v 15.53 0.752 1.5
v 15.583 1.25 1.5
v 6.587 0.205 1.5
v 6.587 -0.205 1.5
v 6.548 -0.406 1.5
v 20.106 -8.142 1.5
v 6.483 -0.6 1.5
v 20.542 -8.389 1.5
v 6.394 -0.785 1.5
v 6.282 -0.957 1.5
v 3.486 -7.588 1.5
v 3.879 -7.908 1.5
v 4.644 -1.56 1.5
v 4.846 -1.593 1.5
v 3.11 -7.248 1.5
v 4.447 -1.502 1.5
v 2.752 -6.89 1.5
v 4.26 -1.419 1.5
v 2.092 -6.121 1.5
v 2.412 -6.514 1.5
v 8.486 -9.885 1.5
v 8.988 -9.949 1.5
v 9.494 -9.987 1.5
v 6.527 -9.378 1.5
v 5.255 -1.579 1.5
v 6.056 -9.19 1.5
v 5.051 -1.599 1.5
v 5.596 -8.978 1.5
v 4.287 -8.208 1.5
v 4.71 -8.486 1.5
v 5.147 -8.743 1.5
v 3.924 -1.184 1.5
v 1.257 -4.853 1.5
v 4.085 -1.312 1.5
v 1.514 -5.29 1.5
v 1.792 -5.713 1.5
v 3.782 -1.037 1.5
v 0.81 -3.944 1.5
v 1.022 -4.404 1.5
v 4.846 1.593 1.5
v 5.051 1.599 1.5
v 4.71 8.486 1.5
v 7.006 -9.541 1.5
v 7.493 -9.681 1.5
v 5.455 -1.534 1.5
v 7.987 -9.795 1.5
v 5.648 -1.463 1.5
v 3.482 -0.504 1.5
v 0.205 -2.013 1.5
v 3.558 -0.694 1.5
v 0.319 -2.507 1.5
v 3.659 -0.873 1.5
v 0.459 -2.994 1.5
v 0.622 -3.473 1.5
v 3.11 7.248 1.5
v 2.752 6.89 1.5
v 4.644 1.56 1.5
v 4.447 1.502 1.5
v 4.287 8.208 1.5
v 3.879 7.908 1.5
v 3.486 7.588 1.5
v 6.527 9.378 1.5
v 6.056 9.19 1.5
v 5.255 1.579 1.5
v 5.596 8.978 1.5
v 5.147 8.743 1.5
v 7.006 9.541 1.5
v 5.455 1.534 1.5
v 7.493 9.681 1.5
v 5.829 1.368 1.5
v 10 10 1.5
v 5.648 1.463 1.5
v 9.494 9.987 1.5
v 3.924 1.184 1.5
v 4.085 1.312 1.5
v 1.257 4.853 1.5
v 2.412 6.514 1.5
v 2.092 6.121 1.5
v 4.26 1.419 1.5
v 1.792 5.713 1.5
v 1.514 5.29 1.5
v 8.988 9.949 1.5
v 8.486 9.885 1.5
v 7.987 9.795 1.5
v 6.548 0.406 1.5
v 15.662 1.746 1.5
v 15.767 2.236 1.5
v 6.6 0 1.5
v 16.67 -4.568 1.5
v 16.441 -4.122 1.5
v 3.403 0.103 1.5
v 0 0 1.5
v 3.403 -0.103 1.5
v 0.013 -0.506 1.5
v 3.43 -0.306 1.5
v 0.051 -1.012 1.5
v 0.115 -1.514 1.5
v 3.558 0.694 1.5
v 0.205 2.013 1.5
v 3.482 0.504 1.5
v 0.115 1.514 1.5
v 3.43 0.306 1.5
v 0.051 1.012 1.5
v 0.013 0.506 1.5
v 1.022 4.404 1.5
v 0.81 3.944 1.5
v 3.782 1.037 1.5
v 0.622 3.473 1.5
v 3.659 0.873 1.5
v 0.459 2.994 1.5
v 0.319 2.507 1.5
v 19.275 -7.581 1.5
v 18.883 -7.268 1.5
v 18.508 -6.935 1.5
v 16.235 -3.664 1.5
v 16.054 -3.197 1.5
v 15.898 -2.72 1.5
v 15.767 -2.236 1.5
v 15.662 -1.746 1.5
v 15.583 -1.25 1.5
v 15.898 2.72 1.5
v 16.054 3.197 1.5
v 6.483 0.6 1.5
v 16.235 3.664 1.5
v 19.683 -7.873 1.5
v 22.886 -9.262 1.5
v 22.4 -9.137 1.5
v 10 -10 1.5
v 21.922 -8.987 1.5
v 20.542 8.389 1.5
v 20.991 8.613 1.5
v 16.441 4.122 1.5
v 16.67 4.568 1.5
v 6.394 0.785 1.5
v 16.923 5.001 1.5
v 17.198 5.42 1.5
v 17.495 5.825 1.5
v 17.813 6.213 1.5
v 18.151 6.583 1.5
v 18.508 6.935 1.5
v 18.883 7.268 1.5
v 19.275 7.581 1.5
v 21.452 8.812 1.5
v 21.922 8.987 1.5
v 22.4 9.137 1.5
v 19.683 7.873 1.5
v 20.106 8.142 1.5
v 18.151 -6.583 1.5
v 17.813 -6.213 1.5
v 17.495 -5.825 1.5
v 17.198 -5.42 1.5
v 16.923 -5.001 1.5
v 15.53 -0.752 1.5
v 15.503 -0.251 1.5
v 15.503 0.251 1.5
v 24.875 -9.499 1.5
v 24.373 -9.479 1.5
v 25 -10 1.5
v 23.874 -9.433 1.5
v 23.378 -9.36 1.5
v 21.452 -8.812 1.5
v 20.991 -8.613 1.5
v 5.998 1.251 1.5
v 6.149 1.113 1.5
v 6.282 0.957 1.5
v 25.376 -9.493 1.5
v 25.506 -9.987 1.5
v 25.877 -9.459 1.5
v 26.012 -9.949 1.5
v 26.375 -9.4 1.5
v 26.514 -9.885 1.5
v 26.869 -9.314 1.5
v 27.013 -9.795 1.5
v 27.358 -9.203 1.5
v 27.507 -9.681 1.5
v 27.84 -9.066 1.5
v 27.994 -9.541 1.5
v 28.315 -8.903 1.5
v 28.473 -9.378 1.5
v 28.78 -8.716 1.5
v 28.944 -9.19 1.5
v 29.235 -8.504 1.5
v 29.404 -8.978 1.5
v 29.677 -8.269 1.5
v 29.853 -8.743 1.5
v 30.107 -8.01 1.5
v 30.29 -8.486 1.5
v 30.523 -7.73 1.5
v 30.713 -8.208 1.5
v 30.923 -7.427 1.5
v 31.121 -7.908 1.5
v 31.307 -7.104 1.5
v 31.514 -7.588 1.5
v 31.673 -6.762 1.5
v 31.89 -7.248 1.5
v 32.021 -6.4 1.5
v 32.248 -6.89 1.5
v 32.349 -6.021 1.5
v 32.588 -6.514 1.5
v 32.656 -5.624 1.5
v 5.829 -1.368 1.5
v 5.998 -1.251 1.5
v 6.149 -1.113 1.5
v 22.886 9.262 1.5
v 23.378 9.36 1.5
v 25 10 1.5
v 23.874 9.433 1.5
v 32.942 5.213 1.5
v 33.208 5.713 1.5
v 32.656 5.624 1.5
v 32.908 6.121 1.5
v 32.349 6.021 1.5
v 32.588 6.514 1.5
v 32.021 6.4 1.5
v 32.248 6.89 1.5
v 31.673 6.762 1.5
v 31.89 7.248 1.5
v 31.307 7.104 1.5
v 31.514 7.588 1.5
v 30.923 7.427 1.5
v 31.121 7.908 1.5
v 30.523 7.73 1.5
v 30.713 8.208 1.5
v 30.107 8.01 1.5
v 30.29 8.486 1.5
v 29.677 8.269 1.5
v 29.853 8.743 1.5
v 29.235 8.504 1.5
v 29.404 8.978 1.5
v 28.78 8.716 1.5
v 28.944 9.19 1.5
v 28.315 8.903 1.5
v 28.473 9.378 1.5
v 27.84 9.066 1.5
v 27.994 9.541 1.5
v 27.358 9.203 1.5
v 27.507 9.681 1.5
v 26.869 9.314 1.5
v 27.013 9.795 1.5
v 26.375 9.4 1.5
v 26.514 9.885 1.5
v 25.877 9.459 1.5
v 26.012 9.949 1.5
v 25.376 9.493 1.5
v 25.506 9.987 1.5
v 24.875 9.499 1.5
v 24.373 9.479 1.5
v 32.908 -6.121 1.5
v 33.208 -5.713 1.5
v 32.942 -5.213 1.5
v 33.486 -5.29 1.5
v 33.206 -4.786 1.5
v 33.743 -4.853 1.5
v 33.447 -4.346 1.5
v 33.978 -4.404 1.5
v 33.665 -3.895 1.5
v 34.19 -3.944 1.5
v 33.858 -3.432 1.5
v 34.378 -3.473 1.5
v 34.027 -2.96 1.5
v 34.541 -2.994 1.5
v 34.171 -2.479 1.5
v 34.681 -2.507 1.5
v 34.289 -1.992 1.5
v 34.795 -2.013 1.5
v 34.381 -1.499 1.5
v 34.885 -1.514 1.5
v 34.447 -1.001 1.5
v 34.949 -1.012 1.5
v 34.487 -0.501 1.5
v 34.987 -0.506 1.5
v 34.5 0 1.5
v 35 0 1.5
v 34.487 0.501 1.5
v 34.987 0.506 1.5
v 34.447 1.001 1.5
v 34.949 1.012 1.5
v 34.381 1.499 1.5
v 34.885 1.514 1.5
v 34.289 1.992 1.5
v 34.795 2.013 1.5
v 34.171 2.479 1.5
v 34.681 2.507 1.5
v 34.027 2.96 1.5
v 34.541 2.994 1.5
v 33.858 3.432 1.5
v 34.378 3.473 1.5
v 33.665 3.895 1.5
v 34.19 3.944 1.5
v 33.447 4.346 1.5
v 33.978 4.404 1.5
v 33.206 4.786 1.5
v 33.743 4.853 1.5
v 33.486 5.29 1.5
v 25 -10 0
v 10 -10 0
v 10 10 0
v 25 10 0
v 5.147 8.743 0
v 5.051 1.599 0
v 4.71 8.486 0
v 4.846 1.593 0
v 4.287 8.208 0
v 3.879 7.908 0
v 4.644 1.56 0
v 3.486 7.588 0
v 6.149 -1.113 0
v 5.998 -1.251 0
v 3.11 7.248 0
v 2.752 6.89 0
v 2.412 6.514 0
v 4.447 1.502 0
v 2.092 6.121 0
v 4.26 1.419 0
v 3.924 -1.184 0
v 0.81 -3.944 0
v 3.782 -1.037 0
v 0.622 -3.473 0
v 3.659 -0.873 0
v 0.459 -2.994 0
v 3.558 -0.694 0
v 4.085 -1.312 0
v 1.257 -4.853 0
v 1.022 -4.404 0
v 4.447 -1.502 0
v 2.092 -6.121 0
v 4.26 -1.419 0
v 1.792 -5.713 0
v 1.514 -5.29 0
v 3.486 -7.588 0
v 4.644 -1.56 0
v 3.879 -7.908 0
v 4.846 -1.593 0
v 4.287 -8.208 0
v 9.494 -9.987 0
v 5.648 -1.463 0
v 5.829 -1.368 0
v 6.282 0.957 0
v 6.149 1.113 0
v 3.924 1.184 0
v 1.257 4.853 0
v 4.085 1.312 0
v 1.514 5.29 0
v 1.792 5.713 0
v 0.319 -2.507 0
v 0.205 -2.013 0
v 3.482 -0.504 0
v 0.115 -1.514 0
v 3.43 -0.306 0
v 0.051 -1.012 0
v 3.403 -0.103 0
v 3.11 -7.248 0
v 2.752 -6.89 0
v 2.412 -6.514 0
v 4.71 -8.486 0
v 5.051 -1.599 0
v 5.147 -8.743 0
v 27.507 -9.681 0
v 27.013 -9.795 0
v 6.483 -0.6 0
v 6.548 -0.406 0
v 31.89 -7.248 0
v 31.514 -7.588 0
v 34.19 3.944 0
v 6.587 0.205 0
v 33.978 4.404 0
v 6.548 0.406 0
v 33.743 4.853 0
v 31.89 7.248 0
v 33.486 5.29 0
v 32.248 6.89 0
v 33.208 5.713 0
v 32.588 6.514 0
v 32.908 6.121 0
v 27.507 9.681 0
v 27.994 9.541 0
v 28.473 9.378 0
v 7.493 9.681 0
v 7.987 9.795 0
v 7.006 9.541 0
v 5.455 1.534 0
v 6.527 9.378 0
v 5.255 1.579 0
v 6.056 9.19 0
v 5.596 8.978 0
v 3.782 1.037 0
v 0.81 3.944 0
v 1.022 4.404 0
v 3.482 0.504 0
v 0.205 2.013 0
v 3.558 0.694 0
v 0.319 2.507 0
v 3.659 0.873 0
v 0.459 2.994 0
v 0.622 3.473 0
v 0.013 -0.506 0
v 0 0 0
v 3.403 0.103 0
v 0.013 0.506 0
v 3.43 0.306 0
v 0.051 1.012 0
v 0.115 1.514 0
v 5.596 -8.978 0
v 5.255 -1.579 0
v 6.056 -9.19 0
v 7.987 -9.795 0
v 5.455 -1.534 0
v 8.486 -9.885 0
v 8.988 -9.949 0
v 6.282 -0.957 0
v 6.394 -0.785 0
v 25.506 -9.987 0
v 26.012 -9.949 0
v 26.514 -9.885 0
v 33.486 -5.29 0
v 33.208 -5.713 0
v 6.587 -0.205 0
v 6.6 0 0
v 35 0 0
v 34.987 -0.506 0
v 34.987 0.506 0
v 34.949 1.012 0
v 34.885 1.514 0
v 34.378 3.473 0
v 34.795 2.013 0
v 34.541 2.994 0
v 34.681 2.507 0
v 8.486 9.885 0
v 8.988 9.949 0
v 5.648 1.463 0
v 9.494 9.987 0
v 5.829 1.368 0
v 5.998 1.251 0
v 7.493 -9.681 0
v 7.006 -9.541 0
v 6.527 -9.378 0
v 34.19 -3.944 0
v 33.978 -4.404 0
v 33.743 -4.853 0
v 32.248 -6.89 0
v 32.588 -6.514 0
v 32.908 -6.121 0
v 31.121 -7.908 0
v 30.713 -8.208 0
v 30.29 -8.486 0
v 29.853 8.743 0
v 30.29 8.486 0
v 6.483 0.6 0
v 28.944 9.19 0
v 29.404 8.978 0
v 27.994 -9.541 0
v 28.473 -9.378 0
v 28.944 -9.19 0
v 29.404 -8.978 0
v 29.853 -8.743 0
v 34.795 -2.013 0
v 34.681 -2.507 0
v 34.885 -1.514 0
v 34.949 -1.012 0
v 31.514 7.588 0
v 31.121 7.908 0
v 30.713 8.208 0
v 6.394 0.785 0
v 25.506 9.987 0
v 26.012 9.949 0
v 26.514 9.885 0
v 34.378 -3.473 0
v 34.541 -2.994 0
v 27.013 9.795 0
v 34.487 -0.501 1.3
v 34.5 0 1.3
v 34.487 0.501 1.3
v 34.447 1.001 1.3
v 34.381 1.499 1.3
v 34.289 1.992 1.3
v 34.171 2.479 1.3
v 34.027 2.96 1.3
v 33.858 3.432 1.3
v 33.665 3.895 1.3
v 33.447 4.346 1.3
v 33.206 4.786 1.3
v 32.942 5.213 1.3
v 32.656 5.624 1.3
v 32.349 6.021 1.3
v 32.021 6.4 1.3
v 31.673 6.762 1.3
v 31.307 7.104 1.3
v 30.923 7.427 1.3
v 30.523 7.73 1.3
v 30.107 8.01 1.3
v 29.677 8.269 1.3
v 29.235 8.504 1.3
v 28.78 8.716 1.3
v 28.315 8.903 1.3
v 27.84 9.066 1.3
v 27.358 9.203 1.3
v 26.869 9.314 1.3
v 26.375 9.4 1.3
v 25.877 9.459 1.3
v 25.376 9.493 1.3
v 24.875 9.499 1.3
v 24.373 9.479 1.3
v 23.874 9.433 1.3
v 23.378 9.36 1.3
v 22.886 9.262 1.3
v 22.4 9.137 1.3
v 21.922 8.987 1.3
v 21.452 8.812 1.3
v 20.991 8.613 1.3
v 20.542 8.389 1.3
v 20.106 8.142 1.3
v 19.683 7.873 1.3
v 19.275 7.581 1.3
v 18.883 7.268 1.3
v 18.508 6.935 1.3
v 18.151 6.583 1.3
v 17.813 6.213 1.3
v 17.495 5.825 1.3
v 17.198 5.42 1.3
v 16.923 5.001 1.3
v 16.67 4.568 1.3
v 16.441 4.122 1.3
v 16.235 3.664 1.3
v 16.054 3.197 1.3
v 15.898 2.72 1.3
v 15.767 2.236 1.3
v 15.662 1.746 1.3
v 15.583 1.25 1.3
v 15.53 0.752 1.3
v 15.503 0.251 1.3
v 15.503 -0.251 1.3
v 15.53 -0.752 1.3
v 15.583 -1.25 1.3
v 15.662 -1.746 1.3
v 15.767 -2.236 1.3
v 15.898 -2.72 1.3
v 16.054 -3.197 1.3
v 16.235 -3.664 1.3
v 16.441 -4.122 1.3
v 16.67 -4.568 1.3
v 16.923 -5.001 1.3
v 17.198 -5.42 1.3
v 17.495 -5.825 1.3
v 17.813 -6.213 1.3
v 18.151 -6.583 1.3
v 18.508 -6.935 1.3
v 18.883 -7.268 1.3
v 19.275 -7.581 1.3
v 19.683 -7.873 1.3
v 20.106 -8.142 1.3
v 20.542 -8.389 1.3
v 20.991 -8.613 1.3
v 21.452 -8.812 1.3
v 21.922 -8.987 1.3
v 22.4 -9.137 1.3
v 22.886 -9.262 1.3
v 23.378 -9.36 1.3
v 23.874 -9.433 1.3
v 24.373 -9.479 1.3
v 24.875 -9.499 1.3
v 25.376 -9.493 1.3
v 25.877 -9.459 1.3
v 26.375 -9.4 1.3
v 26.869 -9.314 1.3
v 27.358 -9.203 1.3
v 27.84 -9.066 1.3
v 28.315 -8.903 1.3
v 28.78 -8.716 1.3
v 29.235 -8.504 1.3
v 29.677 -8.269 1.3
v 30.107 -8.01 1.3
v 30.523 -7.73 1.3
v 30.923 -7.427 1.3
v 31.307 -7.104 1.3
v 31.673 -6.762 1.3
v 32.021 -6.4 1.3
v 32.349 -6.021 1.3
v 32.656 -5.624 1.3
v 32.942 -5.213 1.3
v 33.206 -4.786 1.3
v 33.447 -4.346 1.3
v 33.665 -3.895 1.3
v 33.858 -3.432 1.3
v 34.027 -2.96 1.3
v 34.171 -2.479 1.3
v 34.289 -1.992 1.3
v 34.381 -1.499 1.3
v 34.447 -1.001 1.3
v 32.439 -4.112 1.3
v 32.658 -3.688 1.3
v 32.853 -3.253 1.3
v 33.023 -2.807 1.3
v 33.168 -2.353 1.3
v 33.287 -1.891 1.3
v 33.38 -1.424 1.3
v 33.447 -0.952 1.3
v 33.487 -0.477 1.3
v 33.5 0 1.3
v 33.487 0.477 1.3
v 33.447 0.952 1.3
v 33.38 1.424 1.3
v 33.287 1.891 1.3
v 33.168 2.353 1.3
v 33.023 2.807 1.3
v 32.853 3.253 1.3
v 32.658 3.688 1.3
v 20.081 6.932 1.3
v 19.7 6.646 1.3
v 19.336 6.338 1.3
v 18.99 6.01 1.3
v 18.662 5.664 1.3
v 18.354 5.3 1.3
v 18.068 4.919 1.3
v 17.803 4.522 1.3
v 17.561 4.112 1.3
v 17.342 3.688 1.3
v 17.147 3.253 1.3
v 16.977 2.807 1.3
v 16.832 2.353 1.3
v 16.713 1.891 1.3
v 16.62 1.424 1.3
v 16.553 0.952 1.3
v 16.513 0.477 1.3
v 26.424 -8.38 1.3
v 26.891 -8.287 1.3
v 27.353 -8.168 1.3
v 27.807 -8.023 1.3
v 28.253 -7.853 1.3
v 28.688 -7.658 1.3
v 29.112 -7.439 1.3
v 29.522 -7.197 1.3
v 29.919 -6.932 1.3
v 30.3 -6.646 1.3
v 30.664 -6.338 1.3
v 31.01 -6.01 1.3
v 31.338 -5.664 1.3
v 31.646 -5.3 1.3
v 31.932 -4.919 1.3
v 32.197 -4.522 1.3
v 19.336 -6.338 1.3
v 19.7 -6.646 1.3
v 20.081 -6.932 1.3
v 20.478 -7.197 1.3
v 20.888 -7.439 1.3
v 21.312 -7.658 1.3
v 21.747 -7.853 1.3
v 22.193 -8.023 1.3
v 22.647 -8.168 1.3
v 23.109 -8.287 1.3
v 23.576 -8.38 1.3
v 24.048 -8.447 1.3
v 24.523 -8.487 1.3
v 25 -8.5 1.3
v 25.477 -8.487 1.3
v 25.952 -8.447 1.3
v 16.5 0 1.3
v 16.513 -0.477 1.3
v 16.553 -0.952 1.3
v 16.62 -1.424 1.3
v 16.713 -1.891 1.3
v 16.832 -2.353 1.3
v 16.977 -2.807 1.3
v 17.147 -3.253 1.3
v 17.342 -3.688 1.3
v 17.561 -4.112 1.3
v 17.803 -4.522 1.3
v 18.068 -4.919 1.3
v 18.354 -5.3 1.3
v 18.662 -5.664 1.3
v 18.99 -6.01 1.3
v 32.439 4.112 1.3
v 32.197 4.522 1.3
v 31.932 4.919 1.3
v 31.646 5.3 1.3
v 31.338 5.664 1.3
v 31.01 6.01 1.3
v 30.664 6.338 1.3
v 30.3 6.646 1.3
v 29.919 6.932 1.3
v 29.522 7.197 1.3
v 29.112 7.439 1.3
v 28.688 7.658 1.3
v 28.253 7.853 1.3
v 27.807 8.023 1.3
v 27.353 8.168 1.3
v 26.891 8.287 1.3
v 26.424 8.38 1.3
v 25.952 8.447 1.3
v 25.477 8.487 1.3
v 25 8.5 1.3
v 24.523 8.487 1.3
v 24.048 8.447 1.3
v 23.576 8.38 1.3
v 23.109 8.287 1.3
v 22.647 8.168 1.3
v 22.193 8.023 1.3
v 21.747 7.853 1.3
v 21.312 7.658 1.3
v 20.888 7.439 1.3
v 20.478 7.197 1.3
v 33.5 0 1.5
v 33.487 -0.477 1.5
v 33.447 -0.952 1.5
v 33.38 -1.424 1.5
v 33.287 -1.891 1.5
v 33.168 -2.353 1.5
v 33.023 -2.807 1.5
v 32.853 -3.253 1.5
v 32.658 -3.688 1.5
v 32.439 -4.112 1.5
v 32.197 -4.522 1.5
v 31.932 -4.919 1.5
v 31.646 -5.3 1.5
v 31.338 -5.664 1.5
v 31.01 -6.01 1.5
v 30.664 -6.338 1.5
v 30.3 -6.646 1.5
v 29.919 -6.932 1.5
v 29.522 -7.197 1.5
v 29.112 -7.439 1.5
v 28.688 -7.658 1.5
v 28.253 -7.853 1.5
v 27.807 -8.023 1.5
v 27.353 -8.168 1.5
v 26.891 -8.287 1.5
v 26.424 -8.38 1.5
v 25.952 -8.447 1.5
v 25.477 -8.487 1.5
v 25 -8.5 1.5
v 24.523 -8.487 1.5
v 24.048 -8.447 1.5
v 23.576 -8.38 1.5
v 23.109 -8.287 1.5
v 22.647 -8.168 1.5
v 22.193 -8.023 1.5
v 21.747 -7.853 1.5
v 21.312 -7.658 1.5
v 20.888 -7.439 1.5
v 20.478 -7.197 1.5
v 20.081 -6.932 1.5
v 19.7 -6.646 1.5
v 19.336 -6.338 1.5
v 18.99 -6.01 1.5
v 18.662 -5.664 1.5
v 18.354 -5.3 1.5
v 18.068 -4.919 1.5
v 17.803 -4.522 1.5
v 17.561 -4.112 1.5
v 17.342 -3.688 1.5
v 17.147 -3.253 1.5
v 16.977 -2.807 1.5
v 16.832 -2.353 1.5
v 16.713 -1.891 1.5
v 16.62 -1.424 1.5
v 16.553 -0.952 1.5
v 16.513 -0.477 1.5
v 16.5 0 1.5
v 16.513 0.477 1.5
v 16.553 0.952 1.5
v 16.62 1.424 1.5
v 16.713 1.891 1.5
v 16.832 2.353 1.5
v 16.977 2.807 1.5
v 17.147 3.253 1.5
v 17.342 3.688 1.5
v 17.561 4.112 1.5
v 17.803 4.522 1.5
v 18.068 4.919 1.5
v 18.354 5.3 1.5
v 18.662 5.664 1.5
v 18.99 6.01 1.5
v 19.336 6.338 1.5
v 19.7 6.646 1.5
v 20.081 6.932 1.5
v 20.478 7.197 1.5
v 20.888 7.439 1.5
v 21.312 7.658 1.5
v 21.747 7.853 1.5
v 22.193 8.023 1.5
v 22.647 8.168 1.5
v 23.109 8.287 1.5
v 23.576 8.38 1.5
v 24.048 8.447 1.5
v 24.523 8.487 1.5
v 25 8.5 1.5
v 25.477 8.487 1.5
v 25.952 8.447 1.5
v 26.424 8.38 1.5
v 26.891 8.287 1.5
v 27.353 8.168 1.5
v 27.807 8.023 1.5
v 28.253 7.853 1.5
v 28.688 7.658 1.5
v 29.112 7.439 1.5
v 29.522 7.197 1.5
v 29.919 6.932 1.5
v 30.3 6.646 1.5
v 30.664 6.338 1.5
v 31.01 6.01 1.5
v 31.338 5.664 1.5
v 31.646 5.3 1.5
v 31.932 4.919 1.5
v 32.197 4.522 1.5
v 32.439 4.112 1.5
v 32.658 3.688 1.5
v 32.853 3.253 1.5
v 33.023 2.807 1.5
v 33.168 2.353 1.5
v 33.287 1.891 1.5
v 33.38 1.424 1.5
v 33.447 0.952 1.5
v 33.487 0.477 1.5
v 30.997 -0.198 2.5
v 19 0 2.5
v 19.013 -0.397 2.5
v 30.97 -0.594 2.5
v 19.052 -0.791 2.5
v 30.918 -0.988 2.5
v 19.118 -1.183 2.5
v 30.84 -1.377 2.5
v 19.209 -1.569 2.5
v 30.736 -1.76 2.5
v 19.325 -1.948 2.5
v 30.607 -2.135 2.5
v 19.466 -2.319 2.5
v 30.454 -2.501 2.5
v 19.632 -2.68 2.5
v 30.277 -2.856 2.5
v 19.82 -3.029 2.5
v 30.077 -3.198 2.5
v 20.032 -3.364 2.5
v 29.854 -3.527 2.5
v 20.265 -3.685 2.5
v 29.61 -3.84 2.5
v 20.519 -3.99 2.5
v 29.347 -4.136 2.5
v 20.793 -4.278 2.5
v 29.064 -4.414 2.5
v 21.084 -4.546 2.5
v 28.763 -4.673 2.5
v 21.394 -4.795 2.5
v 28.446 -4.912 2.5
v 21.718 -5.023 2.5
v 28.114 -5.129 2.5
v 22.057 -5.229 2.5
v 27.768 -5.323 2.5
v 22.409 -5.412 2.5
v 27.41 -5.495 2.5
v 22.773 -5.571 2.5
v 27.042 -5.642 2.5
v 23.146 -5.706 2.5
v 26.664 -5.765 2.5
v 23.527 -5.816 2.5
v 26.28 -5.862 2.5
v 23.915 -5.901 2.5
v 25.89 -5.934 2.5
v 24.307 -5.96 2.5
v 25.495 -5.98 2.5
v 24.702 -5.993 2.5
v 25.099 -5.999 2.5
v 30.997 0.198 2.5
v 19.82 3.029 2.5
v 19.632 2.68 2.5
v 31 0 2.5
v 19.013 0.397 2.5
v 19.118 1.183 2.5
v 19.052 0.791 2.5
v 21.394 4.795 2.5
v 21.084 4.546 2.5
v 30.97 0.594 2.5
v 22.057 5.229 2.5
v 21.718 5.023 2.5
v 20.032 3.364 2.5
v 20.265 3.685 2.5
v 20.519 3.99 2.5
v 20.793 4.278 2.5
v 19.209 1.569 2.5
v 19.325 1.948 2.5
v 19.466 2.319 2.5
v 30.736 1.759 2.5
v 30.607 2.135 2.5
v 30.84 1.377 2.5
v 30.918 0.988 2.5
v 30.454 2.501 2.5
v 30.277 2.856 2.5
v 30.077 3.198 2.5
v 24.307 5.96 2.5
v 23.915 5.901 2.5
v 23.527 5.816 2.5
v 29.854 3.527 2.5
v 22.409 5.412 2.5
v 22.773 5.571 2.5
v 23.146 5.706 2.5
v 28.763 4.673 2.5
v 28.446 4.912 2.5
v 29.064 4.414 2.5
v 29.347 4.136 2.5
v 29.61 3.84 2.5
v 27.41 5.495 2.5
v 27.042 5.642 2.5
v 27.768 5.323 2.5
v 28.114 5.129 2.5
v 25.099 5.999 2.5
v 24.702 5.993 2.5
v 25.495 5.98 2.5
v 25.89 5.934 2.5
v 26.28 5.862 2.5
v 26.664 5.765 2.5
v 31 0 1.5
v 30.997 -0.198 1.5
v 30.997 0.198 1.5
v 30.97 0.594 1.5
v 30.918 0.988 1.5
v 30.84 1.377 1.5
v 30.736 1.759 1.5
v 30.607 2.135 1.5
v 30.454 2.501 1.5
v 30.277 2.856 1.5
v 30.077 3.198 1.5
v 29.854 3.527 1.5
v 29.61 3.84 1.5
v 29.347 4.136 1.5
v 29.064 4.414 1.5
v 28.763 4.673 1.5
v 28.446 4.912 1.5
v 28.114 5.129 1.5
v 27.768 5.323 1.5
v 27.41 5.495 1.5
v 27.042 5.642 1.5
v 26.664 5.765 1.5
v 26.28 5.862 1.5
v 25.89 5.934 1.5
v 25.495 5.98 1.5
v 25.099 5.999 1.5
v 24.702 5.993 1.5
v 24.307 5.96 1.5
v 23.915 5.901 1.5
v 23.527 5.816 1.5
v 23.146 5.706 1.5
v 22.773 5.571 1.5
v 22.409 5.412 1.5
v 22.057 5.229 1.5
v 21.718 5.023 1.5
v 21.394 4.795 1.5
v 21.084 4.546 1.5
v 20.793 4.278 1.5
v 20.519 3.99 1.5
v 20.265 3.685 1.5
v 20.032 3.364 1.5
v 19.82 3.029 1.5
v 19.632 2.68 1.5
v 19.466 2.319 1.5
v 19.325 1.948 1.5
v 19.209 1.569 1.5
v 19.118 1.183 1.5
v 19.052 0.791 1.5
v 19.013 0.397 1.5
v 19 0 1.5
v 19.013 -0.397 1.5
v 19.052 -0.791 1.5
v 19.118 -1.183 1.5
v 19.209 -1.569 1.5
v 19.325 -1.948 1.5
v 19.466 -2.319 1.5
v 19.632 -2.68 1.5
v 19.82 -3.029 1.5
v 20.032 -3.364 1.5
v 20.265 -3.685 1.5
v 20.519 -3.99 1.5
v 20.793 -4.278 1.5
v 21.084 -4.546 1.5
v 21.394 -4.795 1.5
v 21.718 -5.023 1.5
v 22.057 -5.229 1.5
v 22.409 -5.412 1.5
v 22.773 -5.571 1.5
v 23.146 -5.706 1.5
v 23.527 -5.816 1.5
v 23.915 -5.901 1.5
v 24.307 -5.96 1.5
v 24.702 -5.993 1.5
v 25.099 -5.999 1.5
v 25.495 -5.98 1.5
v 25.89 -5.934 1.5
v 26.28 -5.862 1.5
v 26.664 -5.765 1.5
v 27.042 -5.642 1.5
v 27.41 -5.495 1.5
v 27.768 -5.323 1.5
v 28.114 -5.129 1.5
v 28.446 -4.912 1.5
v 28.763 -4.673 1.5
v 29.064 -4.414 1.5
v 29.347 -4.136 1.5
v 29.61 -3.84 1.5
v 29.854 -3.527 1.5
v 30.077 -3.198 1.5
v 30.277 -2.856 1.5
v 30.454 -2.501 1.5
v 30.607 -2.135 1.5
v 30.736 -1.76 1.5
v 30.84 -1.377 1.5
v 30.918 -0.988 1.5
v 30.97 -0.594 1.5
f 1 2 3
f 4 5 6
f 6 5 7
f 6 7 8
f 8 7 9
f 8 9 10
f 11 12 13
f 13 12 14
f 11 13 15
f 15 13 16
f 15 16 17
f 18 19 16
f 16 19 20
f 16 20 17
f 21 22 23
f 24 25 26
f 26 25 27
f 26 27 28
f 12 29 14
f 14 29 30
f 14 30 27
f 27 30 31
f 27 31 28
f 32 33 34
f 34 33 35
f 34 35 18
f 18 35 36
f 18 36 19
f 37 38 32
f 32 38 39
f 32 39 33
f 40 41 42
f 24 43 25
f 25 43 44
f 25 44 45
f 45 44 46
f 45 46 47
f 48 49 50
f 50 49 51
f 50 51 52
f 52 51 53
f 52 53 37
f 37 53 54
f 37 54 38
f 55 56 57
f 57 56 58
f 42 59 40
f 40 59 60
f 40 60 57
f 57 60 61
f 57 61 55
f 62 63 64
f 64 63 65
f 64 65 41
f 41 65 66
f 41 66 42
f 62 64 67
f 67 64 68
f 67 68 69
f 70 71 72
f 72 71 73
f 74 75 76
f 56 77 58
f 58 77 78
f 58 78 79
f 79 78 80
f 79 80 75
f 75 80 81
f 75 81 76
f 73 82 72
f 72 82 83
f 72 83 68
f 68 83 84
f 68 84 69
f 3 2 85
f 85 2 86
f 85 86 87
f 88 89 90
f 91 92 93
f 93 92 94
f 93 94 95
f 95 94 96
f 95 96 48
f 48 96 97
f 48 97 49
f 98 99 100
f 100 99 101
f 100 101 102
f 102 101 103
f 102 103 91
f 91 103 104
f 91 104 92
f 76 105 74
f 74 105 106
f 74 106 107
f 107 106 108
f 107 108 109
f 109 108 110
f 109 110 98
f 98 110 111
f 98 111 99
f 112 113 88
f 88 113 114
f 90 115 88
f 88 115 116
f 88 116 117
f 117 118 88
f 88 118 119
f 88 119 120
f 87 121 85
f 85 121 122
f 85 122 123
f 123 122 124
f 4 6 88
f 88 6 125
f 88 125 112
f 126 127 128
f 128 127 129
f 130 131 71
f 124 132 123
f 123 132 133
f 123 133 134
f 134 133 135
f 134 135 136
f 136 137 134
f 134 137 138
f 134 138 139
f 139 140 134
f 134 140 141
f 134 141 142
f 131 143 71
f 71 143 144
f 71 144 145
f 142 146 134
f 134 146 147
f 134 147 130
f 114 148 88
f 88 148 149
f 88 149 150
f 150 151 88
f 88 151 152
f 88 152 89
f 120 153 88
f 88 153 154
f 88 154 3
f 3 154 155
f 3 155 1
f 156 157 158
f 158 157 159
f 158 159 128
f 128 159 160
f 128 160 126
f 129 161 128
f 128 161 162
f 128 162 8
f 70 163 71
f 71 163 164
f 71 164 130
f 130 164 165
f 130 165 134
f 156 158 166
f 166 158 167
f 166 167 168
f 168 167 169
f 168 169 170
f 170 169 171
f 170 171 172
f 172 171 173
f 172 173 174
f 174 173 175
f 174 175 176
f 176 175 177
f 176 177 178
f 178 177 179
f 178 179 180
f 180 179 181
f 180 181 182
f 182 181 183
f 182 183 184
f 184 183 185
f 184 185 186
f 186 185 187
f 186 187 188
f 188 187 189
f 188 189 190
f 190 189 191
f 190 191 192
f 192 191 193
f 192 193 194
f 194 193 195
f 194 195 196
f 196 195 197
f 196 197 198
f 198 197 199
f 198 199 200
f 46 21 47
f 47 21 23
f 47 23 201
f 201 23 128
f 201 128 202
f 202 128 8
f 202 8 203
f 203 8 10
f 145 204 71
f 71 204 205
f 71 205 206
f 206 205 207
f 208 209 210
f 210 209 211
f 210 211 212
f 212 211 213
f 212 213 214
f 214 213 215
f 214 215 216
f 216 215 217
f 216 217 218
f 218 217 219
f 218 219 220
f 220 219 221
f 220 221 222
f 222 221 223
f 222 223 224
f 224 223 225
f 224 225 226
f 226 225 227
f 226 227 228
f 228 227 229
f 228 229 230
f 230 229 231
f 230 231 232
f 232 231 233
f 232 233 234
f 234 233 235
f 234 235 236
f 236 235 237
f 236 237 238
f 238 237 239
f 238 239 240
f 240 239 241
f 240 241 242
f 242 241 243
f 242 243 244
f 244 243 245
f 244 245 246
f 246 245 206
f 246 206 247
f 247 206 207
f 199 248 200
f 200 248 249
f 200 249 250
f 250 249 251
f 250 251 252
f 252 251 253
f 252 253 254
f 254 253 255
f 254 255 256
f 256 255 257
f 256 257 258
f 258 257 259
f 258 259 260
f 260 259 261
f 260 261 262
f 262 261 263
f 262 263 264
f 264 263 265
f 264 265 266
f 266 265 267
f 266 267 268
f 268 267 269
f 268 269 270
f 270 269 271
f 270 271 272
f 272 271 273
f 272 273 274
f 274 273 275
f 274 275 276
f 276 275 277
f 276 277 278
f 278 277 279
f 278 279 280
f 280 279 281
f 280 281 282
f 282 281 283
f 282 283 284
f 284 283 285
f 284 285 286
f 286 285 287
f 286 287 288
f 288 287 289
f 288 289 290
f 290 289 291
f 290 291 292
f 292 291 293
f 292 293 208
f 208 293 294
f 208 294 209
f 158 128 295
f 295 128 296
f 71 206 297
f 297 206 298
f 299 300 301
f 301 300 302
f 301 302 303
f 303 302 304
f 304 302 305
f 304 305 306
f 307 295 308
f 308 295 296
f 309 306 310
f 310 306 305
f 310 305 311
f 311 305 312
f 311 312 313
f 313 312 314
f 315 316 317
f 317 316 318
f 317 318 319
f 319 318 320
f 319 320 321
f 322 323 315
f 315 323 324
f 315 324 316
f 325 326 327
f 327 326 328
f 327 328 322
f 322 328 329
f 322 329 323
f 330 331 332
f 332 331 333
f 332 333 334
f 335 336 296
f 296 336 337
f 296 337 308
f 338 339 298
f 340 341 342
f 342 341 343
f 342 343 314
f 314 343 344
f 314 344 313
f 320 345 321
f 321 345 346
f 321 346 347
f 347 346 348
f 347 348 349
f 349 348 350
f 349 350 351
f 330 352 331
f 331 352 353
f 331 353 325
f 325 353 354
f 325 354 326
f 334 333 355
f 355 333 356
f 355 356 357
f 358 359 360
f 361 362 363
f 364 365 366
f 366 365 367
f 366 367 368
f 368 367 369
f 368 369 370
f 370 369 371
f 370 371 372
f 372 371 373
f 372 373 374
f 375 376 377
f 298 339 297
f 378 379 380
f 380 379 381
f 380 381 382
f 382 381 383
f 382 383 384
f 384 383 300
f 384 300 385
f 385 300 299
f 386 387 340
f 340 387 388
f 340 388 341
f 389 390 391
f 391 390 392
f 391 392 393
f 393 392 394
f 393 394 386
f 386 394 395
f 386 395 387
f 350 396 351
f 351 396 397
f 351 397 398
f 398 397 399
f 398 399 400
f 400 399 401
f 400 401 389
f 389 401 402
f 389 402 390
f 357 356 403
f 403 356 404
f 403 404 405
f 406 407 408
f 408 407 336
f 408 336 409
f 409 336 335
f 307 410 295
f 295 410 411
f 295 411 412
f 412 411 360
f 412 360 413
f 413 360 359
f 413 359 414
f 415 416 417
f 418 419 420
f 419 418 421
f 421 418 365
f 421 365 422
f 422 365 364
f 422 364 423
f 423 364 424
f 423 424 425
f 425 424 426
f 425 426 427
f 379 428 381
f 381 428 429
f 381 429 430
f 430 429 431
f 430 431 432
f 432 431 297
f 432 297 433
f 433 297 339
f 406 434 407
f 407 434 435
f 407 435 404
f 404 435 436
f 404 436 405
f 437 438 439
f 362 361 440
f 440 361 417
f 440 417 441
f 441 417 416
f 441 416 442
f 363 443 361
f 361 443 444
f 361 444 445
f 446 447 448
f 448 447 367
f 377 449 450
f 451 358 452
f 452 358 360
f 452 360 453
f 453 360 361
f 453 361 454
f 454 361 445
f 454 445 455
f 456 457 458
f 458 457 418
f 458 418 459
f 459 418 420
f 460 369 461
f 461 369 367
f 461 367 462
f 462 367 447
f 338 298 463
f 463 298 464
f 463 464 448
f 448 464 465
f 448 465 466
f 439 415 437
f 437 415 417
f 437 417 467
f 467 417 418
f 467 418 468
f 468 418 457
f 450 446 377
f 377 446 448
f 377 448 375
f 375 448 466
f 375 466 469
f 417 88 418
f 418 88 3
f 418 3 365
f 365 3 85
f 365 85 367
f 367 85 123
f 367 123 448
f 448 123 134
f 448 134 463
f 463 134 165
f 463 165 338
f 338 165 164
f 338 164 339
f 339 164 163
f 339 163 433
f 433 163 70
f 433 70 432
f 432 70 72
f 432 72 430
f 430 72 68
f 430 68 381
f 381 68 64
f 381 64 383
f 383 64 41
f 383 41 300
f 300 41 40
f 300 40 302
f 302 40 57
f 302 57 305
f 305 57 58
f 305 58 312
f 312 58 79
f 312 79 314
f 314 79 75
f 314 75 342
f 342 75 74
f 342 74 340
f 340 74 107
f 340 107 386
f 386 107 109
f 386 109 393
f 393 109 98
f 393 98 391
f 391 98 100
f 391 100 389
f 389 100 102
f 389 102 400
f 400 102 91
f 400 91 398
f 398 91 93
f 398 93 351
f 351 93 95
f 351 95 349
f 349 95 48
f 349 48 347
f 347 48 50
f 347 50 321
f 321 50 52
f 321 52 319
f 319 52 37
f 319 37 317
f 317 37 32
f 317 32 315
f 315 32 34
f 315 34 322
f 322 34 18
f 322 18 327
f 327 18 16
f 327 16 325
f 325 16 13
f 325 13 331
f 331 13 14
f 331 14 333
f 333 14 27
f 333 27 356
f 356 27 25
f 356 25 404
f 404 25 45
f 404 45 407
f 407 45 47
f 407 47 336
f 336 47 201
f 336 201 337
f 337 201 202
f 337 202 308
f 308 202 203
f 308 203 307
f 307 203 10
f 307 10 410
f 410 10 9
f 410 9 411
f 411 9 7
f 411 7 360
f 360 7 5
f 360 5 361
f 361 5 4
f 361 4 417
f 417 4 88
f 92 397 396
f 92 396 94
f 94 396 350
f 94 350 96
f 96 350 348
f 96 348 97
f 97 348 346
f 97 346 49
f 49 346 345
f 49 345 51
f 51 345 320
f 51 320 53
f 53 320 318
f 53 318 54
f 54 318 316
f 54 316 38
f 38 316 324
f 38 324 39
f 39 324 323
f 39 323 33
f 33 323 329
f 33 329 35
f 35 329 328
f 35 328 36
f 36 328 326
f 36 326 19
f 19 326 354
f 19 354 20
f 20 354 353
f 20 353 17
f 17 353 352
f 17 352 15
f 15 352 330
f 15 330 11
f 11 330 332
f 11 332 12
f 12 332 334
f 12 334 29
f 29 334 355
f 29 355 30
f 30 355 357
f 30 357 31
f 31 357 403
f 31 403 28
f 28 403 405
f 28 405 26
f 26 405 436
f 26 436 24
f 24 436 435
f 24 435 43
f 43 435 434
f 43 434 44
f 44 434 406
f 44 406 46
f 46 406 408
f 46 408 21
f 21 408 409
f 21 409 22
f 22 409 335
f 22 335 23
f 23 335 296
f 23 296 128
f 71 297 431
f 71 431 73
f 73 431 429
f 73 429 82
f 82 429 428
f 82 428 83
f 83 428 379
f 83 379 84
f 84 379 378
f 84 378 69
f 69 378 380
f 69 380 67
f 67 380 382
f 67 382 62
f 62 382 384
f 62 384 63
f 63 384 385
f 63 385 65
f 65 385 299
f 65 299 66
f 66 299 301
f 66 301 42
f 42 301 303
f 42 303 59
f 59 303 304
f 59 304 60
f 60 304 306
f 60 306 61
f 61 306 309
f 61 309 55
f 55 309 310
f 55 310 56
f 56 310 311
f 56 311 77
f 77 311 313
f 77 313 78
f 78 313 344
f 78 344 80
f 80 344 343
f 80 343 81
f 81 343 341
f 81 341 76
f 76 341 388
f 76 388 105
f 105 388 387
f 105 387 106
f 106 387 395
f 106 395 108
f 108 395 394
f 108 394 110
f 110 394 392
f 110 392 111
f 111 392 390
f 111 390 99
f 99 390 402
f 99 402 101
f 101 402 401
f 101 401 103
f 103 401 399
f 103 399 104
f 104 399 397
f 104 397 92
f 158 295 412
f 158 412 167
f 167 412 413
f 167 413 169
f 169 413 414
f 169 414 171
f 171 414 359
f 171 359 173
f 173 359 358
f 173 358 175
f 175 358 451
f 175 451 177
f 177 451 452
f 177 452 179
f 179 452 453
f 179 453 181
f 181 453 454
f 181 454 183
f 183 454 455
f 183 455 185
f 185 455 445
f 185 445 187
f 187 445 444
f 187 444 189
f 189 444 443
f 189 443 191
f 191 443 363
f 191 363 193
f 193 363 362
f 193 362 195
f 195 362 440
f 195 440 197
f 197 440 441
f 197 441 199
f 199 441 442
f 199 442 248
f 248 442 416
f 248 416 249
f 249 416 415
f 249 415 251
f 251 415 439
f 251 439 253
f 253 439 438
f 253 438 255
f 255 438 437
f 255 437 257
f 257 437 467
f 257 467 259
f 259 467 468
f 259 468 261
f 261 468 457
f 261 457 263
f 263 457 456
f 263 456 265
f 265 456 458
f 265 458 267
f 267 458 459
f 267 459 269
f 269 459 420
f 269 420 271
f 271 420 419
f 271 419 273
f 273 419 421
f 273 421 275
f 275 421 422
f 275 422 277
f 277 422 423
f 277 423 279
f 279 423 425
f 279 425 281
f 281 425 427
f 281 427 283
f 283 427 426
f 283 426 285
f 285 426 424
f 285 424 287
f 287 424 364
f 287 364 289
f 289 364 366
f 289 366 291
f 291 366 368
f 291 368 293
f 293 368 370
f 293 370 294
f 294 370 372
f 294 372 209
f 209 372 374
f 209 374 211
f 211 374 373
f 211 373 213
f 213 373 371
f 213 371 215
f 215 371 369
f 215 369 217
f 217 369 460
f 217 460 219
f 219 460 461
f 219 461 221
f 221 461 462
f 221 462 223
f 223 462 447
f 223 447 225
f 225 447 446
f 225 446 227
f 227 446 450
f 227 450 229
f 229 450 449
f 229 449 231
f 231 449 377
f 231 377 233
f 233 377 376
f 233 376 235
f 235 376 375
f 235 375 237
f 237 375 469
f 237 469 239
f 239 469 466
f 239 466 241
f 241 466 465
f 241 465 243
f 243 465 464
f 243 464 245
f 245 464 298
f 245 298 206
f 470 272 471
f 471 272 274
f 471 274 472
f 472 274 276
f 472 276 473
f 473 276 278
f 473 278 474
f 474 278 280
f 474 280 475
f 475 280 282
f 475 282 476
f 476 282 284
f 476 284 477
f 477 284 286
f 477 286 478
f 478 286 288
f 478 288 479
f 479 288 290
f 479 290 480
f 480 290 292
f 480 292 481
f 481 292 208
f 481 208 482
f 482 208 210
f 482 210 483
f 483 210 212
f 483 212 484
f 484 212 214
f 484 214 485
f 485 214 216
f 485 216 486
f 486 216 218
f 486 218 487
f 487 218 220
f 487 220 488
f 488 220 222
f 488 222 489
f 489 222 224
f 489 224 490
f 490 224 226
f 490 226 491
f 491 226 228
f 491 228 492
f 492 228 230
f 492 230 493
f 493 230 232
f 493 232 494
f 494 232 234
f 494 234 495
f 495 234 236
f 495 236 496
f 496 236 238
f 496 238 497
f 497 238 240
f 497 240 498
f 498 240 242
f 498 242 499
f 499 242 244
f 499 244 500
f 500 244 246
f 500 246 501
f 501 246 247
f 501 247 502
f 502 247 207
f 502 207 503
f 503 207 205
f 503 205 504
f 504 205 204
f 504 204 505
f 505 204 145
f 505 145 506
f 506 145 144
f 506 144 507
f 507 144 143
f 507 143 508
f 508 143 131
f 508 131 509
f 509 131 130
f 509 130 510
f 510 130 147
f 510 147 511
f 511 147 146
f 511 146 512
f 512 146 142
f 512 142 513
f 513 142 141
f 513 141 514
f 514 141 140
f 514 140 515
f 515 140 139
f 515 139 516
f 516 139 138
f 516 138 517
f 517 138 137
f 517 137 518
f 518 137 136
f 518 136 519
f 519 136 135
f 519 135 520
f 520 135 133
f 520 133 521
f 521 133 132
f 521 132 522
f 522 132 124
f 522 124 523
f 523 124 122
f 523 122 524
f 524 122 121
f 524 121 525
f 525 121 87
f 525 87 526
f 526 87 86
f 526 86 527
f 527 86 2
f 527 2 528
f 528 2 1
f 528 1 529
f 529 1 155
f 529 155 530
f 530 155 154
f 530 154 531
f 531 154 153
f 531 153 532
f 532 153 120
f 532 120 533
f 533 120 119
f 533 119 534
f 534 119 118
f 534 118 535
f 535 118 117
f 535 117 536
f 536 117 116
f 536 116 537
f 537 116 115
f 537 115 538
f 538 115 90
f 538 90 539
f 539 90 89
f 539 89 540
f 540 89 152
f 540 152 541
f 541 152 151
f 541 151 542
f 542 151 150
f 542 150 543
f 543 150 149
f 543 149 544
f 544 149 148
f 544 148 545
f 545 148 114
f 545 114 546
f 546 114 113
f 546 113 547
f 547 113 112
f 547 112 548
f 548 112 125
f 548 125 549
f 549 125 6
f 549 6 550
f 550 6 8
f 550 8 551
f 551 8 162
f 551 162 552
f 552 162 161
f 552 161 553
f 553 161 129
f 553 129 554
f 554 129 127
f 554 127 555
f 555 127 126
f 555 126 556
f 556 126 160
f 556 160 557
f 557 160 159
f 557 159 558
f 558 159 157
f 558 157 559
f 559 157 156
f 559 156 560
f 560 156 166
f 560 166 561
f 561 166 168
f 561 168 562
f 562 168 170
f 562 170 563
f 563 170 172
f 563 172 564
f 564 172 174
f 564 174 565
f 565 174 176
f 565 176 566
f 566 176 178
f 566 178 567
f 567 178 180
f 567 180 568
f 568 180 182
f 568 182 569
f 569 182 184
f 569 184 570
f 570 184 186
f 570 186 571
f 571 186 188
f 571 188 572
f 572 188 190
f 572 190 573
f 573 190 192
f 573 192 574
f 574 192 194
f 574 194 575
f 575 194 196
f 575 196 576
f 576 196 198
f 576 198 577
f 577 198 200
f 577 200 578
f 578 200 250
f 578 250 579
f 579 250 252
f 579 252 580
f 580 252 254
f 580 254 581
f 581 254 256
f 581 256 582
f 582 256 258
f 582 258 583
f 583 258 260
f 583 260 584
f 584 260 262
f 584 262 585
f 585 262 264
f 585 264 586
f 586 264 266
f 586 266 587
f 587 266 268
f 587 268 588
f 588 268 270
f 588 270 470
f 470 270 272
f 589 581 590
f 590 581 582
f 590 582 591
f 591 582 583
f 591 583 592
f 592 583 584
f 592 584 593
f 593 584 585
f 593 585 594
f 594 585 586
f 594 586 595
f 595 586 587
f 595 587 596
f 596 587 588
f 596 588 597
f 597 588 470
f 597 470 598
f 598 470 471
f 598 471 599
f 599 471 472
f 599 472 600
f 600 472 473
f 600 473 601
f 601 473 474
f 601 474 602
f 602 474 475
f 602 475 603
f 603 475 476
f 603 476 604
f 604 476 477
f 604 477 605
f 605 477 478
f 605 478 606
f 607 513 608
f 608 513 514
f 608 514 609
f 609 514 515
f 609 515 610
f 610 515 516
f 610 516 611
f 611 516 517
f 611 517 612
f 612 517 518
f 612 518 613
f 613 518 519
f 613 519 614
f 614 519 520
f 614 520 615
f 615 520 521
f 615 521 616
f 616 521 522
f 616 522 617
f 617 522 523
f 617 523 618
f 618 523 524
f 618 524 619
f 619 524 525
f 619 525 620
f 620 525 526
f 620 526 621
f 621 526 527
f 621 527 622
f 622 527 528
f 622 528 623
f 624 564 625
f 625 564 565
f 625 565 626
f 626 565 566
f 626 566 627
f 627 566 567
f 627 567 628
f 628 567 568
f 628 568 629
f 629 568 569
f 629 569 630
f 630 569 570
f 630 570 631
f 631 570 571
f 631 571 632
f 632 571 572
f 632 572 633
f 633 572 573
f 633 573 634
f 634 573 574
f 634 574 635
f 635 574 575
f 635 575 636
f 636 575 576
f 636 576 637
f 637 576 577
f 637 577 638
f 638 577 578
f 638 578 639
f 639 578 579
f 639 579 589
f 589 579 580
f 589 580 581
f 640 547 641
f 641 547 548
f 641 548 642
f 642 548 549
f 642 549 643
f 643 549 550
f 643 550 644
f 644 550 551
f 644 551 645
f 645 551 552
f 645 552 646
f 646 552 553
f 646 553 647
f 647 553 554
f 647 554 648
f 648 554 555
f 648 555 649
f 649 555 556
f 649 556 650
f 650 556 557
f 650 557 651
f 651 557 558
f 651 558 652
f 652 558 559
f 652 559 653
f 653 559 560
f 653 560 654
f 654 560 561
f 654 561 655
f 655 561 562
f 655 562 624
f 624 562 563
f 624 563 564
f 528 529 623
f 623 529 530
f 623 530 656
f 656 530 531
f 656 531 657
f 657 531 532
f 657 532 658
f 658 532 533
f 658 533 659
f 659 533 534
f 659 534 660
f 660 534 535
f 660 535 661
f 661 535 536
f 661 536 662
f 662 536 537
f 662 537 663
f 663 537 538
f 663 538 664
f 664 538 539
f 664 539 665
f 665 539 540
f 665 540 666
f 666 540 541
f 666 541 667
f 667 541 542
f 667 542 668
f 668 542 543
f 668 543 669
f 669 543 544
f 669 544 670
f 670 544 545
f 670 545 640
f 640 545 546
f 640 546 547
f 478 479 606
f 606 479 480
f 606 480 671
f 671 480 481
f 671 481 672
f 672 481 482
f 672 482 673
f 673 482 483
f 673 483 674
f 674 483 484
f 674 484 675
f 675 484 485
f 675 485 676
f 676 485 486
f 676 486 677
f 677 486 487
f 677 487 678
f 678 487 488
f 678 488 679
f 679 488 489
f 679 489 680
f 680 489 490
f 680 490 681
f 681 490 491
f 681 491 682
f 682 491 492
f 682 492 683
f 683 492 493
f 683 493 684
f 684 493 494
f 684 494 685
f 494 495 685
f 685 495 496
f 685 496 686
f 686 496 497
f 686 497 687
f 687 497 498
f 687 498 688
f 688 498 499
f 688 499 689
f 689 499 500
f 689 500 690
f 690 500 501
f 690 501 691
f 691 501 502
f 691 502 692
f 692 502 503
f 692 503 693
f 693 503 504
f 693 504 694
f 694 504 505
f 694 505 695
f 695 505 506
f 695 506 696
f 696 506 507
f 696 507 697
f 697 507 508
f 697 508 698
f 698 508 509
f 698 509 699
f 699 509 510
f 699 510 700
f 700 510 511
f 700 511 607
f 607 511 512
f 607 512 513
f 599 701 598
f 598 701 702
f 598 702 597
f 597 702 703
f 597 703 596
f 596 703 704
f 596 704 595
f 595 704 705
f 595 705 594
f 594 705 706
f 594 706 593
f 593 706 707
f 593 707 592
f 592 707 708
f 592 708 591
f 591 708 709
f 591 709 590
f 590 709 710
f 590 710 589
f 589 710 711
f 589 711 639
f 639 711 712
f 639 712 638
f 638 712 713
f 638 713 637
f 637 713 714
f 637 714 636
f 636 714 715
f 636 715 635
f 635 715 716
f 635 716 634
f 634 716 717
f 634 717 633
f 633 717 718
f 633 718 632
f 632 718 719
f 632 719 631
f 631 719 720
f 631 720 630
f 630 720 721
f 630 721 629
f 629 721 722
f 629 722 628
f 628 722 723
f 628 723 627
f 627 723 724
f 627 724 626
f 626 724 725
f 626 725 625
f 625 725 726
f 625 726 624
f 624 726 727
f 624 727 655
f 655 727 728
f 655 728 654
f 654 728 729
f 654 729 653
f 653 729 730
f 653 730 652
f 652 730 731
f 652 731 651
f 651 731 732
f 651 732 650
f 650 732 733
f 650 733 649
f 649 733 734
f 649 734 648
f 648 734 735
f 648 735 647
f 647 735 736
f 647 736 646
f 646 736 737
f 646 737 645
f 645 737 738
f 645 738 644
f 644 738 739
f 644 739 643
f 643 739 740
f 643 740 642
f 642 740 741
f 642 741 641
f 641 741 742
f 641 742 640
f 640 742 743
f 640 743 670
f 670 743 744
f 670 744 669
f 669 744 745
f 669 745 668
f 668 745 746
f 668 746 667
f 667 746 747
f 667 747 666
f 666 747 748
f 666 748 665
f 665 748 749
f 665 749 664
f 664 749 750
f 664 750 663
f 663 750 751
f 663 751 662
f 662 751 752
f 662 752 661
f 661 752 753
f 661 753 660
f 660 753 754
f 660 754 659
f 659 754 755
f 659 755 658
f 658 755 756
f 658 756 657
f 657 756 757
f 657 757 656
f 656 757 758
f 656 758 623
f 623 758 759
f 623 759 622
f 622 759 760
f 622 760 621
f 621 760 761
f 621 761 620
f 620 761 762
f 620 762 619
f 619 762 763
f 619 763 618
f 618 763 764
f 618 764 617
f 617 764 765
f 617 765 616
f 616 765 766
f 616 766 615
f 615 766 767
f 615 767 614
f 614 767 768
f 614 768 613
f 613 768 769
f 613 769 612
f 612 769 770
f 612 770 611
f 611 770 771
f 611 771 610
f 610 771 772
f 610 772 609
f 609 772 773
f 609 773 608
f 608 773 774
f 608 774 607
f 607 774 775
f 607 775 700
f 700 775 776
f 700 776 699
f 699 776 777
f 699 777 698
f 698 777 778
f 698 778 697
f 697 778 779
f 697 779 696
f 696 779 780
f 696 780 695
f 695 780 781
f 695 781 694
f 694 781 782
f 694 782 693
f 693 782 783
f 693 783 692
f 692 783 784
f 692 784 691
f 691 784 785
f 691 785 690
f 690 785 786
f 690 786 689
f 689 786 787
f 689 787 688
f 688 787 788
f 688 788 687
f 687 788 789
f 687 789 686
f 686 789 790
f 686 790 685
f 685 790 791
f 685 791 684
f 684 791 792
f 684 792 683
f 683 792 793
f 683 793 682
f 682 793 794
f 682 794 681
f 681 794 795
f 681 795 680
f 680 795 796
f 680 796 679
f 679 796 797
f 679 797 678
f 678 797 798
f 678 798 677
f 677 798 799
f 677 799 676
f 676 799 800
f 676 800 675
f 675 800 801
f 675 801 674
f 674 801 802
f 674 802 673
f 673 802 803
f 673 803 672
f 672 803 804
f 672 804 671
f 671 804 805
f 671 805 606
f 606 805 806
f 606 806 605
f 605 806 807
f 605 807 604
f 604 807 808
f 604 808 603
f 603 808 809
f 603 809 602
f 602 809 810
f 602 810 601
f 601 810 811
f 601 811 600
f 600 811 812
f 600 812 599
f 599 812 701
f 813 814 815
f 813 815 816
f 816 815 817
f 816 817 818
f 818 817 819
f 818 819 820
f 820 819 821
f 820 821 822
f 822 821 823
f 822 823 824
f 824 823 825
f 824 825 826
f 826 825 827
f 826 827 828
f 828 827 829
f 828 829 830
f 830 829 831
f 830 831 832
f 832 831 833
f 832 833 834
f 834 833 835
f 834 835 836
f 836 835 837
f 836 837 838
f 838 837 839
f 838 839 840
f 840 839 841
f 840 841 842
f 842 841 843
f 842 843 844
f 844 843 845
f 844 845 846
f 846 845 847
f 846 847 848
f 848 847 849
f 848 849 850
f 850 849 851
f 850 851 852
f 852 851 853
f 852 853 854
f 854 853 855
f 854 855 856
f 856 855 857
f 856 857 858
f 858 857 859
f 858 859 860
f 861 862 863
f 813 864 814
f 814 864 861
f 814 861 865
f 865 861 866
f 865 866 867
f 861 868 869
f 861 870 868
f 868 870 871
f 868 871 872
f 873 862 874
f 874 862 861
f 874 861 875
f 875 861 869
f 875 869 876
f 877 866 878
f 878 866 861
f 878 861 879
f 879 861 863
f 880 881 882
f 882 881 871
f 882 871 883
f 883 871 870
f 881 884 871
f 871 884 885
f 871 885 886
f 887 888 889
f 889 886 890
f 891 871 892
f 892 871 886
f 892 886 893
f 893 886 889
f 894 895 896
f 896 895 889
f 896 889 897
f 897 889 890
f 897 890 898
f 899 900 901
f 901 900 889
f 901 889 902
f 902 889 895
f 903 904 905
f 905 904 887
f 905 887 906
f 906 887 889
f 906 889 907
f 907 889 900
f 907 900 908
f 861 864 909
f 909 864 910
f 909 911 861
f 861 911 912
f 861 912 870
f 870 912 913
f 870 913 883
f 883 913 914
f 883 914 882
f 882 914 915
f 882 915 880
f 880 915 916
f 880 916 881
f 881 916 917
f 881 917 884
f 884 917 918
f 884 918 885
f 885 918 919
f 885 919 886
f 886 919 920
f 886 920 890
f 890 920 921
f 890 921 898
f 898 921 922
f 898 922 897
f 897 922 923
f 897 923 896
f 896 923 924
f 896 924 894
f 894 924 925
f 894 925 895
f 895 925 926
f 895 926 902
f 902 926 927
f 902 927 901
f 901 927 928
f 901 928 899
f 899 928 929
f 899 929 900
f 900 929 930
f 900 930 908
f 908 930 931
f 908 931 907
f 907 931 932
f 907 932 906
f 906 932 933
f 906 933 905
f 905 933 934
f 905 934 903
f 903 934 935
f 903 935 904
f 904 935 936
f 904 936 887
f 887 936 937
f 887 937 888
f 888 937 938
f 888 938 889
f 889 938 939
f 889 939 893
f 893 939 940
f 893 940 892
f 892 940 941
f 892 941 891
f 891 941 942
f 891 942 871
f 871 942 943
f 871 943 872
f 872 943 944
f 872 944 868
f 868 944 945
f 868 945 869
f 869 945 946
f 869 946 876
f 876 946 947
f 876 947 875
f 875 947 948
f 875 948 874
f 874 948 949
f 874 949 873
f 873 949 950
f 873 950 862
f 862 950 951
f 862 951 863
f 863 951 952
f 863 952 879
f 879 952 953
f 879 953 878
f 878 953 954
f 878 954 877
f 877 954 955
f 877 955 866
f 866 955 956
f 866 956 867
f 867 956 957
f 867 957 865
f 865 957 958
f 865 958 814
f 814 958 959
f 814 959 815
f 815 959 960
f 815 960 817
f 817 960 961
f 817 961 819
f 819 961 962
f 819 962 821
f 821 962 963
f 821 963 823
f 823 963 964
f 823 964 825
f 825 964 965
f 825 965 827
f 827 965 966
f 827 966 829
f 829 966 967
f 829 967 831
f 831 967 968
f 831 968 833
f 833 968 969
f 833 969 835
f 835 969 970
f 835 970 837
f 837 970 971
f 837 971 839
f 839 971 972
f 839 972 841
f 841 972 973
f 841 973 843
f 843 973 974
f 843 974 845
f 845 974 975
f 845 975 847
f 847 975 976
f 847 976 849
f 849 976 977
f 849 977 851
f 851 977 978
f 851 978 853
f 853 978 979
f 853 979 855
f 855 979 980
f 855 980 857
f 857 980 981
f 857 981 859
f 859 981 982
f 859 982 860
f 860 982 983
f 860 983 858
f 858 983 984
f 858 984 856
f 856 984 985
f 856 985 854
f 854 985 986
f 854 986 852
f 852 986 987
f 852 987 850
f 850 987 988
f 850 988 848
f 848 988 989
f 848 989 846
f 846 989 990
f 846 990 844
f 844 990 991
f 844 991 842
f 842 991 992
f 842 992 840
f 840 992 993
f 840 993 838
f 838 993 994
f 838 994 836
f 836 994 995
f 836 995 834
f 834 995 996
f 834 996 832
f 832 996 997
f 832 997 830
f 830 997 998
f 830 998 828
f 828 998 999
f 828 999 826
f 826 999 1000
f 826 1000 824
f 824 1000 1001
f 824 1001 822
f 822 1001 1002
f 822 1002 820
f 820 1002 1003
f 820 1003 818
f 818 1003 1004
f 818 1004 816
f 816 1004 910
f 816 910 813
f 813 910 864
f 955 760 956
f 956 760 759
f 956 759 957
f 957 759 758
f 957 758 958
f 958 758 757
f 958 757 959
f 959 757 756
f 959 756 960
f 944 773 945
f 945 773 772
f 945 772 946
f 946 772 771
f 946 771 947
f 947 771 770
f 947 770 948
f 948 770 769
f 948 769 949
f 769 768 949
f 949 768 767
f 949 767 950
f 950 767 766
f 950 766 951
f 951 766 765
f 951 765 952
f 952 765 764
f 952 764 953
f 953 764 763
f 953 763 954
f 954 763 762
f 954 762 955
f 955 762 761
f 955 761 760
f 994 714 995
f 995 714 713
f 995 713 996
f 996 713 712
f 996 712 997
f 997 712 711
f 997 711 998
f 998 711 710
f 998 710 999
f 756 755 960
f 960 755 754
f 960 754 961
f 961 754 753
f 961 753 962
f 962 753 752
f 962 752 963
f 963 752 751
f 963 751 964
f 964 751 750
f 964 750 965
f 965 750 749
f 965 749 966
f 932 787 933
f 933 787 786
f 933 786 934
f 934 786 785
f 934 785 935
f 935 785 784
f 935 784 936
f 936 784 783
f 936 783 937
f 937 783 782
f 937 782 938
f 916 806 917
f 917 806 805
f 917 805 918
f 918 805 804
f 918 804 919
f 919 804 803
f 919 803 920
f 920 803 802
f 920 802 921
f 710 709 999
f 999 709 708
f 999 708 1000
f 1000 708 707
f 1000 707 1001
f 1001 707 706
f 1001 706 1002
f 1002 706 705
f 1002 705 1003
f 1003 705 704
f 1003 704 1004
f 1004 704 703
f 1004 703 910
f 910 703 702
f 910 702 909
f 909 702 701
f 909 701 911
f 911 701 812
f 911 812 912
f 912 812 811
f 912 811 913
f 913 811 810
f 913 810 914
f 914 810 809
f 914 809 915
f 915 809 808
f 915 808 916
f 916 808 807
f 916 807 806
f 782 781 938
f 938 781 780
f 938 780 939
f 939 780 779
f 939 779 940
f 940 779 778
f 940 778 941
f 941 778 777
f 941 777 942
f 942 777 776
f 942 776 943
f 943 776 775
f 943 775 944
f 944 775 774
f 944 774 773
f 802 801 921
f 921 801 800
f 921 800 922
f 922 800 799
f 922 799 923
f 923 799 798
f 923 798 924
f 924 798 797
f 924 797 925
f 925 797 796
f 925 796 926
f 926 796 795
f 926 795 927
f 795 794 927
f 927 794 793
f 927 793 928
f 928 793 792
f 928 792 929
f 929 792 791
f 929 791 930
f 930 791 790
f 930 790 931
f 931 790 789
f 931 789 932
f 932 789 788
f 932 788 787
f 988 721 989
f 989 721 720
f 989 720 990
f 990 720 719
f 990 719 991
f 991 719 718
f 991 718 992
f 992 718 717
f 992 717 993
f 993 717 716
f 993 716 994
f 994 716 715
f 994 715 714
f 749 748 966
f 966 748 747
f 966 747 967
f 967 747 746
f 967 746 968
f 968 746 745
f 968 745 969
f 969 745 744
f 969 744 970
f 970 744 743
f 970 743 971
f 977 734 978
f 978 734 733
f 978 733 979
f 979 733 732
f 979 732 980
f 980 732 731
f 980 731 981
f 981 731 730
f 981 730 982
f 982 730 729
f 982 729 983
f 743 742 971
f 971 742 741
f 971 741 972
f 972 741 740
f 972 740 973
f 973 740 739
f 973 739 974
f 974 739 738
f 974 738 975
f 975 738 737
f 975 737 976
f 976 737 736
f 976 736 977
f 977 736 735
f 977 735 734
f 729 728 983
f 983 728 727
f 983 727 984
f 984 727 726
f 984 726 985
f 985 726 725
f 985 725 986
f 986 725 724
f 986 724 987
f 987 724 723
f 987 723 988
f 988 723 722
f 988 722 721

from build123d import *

# Parameters (mm, degrees)
SKETCH1_W               = 35
SKETCH1_H               = 20
BOSS_EXTRUDE1_DEPTH     = 1.5
SKETCH2_R               = 1.6
CUT_M3_HOLE_DEPTH       = 37.431442464
SKETCH3_R               = 6
BOSS_FSR_BOSS_DEPTH     = 1
FILLET1_R               = 10
SKETCH4_R               = 9.5
SKETCH4_R_2             = 8.5
CUT_EXTRUDE_THIN1_DEPTH = 0.2


with BuildPart() as part:
    # Sketch1 → Boss-Extrude1 (new body)
    with BuildSketch(Plane.XY):
        with Locations((17.5, 0)):
            Rectangle(SKETCH1_W, SKETCH1_H)
    extrude(amount=BOSS_EXTRUDE1_DEPTH)

    # Sketch2 → Cut-M3 Hole (cut, through all)
    with BuildSketch(Plane.XY.offset(1.5)):
        with Locations((5, 0)):
            Circle(SKETCH2_R)
    extrude(amount=-CUT_M3_HOLE_DEPTH, mode=Mode.SUBTRACT)

    # Sketch3 → Boss-FSR Boss (add)
    with BuildSketch(Plane.XY.offset(1.5)):
        with Locations((25, 0)):
            Circle(SKETCH3_R)
    extrude(amount=BOSS_FSR_BOSS_DEPTH)

    # Fillet1
    fillet1_edges = [part.edges().sort_by_distance(p)[0] for p in [
        (0, 10, 0.75),
        (35, 10, 0.75),
        (35, -10, 0.75),
        (0, -10, 0.75),
    ]]
    fillet(fillet1_edges, radius=FILLET1_R - 0.0001)  # a hair under: the kernel refuses the full size

    # Sketch4 → Cut-Extrude-Thin1 (cut)
    with BuildSketch(Plane.XY.offset(1.5)):
        with Locations((25, 0)):
            Circle(SKETCH4_R)
        with Locations((25, 0)):
            Circle(SKETCH4_R_2, mode=Mode.SUBTRACT)
    extrude(amount=-CUT_EXTRUDE_THIN1_DEPTH, mode=Mode.SUBTRACT)


solid = part.part
